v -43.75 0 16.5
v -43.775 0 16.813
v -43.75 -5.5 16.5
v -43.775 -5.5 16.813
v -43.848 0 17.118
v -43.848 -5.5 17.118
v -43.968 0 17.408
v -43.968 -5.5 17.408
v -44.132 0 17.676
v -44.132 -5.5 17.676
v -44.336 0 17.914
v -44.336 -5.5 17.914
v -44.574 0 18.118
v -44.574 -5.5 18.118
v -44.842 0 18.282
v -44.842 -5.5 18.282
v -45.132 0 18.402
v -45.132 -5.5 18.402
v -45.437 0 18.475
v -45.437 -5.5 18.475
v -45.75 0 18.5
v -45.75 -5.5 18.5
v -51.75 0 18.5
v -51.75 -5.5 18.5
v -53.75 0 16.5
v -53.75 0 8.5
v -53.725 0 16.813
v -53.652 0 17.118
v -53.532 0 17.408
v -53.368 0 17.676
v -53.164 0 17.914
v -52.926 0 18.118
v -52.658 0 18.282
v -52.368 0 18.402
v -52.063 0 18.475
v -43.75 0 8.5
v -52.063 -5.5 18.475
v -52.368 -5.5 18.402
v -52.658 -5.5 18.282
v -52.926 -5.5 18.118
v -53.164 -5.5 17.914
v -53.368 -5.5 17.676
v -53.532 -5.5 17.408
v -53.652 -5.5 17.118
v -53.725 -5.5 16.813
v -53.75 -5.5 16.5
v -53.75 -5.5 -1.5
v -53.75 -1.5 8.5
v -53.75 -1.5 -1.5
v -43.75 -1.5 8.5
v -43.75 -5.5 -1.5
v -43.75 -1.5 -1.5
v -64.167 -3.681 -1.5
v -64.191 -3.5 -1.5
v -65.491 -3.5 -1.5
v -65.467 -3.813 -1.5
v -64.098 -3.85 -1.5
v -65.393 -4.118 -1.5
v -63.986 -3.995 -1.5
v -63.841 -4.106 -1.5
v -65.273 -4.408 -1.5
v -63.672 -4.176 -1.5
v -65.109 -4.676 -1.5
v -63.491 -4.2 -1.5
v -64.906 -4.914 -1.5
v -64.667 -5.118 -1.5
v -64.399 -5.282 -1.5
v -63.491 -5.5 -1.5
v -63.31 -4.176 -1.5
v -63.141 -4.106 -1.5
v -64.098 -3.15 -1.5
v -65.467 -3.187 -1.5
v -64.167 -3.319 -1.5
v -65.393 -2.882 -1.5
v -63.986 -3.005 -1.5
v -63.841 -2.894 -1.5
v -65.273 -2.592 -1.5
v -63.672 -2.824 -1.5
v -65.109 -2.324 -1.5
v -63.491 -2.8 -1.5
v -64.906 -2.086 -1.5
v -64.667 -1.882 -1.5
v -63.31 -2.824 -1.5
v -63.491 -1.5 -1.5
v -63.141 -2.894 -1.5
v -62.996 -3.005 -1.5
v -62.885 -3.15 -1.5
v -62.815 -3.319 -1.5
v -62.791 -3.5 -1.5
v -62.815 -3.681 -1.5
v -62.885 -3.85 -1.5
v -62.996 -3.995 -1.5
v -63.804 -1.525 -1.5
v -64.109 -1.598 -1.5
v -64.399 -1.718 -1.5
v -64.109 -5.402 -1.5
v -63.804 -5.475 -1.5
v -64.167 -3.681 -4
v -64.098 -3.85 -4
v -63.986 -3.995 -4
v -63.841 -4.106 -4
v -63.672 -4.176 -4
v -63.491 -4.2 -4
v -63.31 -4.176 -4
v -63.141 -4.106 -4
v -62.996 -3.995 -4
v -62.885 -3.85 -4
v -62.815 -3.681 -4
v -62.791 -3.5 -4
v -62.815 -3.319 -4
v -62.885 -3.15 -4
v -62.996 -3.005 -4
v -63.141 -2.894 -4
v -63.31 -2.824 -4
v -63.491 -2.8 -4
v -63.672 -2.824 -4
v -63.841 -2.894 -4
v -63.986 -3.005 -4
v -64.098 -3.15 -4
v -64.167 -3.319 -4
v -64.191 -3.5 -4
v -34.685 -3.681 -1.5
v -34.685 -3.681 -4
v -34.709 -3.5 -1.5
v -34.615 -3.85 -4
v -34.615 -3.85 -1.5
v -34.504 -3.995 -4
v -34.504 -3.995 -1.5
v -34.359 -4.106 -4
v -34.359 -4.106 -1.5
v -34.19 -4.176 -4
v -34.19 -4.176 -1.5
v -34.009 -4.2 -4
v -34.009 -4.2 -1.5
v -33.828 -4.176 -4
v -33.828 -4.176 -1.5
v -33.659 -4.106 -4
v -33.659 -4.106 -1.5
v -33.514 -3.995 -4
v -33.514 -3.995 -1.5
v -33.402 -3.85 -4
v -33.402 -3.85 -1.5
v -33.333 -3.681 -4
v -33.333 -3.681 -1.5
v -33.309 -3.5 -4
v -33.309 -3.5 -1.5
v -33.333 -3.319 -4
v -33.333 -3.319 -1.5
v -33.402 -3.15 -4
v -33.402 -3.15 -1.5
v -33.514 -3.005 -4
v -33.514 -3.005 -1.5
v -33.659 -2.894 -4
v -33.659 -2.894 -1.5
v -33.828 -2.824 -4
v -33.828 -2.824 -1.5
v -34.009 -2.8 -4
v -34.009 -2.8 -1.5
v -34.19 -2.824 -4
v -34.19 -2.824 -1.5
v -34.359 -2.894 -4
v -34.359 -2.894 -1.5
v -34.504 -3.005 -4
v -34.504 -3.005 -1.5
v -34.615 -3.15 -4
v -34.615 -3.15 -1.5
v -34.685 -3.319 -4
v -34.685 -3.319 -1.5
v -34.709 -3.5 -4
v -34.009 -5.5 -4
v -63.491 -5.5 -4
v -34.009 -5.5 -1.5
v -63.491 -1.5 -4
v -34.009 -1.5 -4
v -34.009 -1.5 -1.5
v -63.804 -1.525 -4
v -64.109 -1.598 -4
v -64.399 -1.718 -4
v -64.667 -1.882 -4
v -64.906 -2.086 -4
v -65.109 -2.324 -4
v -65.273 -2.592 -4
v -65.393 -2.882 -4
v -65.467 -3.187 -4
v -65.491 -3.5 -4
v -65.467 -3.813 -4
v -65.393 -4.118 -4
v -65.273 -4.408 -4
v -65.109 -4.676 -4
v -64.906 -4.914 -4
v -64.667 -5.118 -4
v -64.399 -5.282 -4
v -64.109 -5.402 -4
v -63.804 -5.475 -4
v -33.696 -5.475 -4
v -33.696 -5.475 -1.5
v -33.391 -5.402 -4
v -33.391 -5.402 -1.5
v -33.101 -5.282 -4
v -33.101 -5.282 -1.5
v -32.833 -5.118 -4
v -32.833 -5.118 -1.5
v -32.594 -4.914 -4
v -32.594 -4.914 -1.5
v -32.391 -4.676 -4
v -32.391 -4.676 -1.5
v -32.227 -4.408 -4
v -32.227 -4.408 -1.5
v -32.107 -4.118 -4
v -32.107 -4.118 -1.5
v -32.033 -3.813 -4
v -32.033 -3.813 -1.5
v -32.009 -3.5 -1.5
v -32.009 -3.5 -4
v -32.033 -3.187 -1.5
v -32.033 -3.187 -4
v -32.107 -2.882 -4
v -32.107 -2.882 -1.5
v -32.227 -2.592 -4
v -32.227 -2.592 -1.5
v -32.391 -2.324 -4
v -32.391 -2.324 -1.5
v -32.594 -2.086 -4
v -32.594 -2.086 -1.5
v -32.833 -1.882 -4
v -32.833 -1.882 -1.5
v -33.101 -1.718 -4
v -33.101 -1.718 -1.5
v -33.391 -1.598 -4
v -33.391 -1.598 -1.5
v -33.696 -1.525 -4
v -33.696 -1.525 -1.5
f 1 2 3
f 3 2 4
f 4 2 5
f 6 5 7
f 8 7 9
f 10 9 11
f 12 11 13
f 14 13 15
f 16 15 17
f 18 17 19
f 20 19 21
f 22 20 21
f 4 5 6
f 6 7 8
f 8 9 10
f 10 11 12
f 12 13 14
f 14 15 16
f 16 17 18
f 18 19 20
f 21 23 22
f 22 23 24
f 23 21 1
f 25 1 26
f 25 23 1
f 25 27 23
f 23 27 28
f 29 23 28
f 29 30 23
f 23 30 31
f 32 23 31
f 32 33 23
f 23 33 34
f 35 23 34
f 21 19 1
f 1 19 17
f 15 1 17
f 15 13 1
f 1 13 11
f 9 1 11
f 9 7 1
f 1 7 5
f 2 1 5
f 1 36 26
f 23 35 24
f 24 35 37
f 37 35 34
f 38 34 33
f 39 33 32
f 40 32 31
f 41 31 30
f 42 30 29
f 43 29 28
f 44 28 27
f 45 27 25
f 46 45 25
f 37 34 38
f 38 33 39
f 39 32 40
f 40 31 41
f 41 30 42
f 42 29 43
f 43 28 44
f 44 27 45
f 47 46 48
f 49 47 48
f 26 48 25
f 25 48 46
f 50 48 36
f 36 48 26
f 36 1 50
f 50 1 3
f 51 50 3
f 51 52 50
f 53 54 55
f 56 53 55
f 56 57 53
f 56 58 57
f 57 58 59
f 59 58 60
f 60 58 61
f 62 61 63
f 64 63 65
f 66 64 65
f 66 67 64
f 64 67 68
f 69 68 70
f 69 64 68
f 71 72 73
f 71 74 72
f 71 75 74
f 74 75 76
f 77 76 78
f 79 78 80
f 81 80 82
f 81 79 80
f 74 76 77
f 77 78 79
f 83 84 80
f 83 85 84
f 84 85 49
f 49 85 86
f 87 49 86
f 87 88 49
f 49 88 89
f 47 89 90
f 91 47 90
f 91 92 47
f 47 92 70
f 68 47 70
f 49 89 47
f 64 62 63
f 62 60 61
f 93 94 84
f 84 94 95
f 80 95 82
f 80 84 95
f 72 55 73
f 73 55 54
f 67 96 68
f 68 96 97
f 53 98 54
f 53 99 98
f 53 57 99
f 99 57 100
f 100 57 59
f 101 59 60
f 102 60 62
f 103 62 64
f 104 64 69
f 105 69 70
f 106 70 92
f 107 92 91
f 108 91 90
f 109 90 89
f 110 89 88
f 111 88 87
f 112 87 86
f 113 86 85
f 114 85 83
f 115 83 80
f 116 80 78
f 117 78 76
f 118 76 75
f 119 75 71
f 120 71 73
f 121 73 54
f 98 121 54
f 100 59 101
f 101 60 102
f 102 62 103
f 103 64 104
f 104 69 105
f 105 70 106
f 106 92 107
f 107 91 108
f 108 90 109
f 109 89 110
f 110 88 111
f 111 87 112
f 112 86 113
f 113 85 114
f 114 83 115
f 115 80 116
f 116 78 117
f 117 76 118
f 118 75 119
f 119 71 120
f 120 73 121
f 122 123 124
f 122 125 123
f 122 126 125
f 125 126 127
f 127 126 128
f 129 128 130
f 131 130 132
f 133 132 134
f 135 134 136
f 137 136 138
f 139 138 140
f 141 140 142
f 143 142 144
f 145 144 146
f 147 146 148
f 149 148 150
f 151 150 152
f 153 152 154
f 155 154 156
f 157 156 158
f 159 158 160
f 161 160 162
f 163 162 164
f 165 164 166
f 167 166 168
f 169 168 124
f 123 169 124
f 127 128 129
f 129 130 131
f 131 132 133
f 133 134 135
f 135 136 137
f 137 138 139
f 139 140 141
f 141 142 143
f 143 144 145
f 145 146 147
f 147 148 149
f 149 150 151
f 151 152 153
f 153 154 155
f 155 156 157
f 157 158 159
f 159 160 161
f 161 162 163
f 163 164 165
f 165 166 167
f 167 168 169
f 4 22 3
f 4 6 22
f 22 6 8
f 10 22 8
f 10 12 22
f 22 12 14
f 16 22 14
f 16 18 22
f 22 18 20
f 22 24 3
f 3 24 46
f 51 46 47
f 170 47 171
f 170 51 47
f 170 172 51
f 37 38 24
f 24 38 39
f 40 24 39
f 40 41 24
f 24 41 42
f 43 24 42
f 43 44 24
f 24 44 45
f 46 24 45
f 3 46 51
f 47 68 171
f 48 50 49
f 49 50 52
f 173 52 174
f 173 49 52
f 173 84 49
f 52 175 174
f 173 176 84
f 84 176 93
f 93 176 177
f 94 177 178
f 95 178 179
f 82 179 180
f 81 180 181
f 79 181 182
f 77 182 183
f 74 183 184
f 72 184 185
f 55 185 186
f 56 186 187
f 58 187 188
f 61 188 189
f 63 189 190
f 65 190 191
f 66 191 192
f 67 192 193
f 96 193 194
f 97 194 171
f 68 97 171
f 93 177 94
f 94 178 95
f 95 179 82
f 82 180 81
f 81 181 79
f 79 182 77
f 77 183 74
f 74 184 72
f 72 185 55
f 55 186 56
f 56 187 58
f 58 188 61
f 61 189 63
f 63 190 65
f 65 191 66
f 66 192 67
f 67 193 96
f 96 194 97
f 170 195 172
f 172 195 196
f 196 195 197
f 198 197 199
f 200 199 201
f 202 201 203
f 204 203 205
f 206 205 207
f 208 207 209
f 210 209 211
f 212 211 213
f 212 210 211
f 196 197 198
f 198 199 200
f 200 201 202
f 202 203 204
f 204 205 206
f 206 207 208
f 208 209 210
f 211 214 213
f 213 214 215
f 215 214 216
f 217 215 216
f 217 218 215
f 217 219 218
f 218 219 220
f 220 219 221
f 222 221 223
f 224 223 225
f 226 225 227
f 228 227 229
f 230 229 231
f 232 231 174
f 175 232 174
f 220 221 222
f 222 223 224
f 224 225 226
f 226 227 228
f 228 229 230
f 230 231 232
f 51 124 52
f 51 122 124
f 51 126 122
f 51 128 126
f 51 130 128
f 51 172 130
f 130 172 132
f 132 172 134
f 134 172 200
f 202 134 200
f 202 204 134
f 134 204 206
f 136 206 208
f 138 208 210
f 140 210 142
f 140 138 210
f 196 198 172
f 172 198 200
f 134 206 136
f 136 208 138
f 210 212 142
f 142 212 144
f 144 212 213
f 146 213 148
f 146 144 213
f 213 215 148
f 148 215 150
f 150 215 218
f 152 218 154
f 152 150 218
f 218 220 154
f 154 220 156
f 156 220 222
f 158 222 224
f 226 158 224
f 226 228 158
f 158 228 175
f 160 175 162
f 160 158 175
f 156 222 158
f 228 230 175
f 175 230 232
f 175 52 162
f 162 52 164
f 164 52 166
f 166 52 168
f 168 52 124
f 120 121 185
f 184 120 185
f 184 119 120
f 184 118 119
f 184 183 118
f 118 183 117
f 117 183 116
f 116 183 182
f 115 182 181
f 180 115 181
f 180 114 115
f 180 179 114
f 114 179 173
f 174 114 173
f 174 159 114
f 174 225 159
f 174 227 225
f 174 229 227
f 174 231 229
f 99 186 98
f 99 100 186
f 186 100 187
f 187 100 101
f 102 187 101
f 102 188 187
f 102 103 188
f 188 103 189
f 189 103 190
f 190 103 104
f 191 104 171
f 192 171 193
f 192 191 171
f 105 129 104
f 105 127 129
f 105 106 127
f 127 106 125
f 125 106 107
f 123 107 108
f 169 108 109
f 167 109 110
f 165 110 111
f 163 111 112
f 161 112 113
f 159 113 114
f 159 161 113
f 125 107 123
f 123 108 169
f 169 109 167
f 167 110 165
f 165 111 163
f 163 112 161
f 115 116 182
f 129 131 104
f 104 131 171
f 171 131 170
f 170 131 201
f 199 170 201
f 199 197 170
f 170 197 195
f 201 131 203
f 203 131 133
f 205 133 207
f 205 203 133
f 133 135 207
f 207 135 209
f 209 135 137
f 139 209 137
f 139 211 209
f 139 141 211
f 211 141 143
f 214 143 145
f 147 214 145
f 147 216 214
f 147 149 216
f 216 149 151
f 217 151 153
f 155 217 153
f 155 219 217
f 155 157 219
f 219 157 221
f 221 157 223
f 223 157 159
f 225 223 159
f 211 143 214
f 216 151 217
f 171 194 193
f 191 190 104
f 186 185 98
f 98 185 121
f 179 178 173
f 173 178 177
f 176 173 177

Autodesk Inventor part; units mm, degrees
ref_plane "YZ Plane" through (0, 0, 0) normal (1, 0, 0) x (0, 1, 0)
ref_plane "XZ Plane" through (0, 0, 0) normal (0, 1, 0) x (-1, 0, 0)
ref_plane "Work Plane1" through (-43.75, 3, -4) normal (0, 0, 1) x (-1, 0, 0)
sketch "Sketch1" plane through (-43.75, 3, -4) normal (0, 0, 1) x (-1, 0, 0)
  circle A0 centre (-9.7413, 6.5) radius 0.7 projected
  circle A1 centre (19.7413, 6.5) radius 0.7 projected
  circle A2 centre (-9.7413, 6.5) radius 2
  circle A3 centre (19.7413, 6.5) radius 2
  line L0 (-9.7413, 8.5) -> (19.7413, 8.5)
  line L1 (-9.7413, 4.5) -> (19.7413, 4.5)
  point P0 (-43.75, 3)
  dimension "d0" = 4
  dimension "d1" = 4
extrude "Extrusion1" add sketch "Sketch1" along normal blind 2.5
sketch "Sketch2" plane through (-43.75, 3, -1.5) normal (0, 0, 1) x (1, 0, 0)
  line L0 (9.7413, -4.5) -> (-19.7413, -4.5) projected
  line L1 (-19.7413, -8.5) -> (9.7413, -8.5) projected
  line L2 (-10, -4.5) -> (0, -4.5)
  line L3 (0, -4.5) -> (0, -8.5)
  line L4 (0, -8.5) -> (-10, -8.5)
  line L5 (-10, -8.5) -> (-10, -4.5)
  circle A0 centre (-5, -6.5) radius 1.25 projected
  point P0 (43.75, -3)
  dimension "d4" = 10
  dimension "d6" = 5
extrude "Extrusion2" add sketch "Sketch2" along normal blind 20 contours L3 L1 L5 L0 | A0
sketch "Sketch3" plane through (-63.4913, -1.5, -4) normal (0, 1, 0) x (1, 0, 0)
  line L0 (19.7413, -2.5) -> (19.7413, -22.5) projected
  line L1 (9.7413, -22.5) -> (19.7413, -22.5)
  line L2 (19.7413, -22.5) -> (19.7413, -12.5)
  line L3 (19.7413, -12.5) -> (9.7413, -12.5)
  line L4 (9.7413, -12.5) -> (9.7413, -22.5)
  point P0 (63.4913, -4)
extrude "Extrusion3" add sketch "Sketch3" along normal blind 1.5
fillet "Fillet1" radius 2 2 edges at (-53.75, -2.75, 18.5) (-43.75, -2.75, 18.5)
properties part number "HornBase"
